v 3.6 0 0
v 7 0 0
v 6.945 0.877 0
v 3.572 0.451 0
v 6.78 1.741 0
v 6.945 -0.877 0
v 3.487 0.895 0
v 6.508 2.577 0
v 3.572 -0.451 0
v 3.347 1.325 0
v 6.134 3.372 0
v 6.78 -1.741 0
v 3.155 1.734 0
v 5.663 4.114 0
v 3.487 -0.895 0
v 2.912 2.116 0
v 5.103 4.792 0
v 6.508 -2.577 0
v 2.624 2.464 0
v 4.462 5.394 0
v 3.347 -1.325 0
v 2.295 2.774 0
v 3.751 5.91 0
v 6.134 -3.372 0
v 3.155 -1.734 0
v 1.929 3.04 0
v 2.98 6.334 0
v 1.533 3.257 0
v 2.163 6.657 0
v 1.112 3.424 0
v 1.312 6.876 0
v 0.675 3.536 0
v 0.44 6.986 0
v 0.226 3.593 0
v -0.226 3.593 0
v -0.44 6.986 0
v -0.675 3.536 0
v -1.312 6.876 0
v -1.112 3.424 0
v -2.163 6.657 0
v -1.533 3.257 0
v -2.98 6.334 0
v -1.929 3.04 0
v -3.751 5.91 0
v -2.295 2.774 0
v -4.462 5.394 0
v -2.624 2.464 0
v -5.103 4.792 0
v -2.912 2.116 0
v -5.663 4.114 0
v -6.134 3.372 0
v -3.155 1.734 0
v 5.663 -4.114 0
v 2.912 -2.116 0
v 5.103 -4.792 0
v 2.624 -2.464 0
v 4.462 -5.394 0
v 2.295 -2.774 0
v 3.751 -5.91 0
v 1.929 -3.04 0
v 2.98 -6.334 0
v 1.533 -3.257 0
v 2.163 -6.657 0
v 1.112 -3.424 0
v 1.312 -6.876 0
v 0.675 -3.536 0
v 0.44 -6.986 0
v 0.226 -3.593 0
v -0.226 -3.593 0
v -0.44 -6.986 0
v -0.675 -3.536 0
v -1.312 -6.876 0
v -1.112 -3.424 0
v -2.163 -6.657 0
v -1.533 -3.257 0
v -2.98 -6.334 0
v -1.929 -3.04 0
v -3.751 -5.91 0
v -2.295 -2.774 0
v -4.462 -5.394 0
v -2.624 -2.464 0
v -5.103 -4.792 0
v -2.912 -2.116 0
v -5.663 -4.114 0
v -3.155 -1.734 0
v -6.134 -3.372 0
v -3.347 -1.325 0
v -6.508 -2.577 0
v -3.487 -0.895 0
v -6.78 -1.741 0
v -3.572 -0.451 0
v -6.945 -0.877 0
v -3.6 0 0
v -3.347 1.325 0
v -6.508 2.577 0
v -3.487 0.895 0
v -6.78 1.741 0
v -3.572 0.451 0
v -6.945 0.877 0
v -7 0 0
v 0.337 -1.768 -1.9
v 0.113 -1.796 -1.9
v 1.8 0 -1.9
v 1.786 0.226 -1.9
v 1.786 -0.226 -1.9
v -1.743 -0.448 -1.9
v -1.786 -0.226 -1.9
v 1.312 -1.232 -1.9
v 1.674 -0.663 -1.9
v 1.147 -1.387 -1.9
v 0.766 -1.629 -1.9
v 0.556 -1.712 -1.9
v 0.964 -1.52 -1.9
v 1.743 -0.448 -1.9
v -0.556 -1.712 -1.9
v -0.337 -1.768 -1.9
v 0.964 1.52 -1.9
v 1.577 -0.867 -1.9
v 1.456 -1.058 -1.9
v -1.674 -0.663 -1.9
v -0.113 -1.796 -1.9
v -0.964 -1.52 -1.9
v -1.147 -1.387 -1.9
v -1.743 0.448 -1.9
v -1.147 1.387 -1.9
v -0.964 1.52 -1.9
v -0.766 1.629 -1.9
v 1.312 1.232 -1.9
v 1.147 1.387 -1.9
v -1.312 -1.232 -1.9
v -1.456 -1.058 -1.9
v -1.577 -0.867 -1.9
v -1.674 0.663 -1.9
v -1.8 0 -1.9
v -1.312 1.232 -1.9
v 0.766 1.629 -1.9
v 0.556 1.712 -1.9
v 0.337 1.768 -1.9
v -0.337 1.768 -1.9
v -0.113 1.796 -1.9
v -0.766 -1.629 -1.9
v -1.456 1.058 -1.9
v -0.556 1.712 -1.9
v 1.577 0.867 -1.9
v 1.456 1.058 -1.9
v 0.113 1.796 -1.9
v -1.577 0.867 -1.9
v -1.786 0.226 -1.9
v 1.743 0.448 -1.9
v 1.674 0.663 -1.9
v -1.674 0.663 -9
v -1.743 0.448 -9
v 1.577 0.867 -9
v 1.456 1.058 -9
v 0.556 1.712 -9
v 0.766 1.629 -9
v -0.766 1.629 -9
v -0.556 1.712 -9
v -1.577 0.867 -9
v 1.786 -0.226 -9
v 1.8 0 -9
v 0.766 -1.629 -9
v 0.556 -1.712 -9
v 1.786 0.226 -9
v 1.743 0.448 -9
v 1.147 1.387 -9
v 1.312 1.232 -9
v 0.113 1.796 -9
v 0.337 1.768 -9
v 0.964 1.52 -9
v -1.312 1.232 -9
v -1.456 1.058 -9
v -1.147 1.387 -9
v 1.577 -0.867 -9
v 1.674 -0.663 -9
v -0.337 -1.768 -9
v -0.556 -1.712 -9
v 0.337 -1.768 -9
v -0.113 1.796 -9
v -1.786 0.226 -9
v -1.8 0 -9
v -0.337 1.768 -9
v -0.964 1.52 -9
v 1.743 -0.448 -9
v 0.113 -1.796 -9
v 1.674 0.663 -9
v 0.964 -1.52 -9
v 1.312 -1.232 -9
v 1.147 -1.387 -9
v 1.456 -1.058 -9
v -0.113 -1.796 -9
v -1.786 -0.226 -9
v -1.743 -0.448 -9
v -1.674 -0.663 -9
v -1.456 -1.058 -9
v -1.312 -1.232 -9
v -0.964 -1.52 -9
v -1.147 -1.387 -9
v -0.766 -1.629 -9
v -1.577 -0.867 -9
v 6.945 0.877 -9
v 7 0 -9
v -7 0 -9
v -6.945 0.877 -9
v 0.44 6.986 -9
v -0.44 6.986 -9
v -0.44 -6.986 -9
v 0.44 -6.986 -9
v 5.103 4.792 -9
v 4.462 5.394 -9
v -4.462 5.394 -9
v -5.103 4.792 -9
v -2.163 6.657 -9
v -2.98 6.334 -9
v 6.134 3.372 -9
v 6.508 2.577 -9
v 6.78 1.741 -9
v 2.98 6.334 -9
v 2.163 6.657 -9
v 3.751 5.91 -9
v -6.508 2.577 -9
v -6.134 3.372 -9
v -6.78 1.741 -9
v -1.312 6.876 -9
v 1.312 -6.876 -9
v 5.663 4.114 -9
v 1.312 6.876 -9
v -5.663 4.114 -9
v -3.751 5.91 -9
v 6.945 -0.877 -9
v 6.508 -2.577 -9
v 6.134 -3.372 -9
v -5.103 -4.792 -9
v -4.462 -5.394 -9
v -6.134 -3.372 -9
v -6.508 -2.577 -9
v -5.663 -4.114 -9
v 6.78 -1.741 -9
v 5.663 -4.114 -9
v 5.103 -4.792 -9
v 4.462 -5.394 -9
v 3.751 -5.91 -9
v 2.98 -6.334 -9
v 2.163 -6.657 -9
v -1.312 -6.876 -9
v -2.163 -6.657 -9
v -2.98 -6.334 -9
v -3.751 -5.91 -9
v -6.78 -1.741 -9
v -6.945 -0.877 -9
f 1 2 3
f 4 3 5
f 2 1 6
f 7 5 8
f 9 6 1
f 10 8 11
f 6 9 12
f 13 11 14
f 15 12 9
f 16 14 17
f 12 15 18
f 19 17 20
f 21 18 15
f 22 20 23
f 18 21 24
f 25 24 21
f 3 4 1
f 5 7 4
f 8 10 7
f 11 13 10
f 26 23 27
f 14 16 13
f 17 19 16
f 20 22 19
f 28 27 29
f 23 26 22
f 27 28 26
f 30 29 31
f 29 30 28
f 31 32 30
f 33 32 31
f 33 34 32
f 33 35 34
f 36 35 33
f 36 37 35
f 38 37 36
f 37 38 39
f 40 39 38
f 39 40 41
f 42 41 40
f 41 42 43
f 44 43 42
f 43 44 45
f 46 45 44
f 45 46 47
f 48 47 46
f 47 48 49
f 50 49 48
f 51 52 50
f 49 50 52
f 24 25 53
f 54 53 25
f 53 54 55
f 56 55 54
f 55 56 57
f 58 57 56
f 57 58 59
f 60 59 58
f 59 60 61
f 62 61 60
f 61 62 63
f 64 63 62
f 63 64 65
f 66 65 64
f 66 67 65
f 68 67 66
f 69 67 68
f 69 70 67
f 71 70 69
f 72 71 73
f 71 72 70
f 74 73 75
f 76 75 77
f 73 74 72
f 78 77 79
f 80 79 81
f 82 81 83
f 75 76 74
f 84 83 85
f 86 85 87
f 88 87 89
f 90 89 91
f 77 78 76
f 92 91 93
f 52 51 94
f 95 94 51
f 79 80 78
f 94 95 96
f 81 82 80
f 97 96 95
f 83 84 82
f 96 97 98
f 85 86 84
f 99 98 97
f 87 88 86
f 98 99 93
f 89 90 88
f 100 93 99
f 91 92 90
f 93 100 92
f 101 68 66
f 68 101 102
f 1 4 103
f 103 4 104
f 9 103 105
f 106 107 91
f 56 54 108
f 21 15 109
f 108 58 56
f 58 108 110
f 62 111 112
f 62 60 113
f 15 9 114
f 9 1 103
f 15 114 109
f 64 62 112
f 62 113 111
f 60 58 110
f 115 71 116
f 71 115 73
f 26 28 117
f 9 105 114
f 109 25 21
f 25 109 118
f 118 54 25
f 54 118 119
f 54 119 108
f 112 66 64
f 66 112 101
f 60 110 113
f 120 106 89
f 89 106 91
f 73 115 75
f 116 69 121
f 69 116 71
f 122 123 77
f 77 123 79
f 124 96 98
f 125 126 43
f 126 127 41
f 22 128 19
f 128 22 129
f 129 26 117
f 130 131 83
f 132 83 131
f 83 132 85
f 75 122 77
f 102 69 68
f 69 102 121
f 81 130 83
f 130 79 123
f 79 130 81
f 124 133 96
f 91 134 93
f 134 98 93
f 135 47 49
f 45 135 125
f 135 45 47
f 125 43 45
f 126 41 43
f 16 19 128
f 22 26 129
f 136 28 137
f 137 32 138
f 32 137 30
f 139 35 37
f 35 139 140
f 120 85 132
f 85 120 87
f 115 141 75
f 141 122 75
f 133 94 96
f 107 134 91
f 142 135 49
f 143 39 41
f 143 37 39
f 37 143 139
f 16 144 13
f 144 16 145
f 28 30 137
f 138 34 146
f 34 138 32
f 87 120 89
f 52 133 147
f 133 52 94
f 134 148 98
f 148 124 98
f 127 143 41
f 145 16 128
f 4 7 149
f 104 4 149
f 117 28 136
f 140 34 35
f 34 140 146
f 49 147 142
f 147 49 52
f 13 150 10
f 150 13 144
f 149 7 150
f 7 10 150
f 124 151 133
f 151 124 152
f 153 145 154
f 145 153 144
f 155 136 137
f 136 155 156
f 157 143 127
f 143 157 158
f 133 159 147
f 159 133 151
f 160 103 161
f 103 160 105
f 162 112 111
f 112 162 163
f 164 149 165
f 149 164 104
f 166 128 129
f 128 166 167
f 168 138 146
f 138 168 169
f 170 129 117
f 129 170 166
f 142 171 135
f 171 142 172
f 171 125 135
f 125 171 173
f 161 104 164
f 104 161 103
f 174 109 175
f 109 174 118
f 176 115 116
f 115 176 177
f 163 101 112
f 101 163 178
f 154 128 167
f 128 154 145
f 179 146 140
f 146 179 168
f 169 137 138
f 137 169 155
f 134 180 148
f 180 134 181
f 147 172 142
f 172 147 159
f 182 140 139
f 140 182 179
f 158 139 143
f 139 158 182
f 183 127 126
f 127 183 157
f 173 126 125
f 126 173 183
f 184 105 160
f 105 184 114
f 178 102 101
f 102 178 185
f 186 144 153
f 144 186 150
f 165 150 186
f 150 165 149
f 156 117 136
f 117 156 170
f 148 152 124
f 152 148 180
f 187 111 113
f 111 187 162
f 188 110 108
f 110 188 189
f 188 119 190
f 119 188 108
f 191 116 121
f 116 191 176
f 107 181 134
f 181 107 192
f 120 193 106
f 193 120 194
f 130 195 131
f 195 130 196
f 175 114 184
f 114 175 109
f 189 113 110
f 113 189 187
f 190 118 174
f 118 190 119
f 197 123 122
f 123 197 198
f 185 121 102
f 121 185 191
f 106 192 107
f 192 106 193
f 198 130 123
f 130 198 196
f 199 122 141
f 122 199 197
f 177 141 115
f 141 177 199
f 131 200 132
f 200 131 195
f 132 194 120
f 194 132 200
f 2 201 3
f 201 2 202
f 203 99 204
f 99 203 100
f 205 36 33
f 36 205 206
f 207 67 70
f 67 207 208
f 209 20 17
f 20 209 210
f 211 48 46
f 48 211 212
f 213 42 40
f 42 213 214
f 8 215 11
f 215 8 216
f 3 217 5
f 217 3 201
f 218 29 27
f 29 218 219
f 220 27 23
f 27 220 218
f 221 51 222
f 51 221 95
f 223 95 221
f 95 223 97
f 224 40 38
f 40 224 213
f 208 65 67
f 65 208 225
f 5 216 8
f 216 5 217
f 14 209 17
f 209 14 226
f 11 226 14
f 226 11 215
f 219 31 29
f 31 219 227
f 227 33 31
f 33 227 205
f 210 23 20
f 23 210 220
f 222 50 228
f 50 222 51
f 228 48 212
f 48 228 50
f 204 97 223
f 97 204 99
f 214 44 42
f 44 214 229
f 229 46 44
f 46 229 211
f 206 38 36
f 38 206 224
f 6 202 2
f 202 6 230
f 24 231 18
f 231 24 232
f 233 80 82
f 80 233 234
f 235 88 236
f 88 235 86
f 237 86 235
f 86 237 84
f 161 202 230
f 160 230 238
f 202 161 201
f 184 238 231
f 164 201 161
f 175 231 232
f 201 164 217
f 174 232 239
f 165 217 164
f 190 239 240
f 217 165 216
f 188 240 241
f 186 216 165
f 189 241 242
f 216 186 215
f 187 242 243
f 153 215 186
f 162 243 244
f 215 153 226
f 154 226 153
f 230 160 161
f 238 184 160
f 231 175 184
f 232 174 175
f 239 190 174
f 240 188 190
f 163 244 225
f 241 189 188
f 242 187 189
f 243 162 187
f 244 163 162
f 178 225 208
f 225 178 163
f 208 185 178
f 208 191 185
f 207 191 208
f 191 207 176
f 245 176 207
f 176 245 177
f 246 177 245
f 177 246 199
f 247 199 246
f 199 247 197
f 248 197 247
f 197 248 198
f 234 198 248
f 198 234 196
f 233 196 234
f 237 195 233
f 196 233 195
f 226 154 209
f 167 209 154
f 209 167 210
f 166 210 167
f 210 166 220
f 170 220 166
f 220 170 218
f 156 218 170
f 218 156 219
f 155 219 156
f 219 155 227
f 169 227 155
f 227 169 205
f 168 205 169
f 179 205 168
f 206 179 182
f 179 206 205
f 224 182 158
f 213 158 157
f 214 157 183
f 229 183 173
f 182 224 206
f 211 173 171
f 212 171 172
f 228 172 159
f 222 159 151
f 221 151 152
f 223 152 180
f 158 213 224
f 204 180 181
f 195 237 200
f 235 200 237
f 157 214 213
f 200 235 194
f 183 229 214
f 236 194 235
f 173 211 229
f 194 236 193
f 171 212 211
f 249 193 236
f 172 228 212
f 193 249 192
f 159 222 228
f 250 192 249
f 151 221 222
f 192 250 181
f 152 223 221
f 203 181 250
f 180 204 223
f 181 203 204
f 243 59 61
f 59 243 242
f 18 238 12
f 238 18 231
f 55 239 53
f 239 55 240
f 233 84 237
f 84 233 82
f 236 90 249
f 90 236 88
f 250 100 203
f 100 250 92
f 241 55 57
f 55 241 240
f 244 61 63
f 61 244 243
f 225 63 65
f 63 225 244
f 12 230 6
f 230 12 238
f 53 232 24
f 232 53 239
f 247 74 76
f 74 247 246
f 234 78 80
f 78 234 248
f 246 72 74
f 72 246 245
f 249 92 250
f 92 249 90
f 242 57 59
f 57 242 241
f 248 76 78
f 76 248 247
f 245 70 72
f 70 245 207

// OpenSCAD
$fn = 50;

difference() {
	union() {
		translate(v = [0, 0, -9.0]) {
			cylinder(h = 9, r = 7.0);
		}
	}
	union() {
		translate(v = [0, 0, 0]) {
			rotate(a = [0, 0, 0]) {
				difference() {
					union() {
						translate(v = [0, 0, -12.0]) {
							cylinder(h = 12, r = 1.5);
						}
						translate(v = [0, 0, -1.9]) {
							cylinder(h = 1.9, r1 = 1.8, r2 = 3.6);
						}
						translate(v = [0, 0, -12.0]) {
							cylinder(h = 12, r = 1.8);
						}
						translate(v = [0, 0, -12.0]) {
							cylinder(h = 12, r = 1.5);
						}
					}
					union();
				}
			}
		}
	}
}
